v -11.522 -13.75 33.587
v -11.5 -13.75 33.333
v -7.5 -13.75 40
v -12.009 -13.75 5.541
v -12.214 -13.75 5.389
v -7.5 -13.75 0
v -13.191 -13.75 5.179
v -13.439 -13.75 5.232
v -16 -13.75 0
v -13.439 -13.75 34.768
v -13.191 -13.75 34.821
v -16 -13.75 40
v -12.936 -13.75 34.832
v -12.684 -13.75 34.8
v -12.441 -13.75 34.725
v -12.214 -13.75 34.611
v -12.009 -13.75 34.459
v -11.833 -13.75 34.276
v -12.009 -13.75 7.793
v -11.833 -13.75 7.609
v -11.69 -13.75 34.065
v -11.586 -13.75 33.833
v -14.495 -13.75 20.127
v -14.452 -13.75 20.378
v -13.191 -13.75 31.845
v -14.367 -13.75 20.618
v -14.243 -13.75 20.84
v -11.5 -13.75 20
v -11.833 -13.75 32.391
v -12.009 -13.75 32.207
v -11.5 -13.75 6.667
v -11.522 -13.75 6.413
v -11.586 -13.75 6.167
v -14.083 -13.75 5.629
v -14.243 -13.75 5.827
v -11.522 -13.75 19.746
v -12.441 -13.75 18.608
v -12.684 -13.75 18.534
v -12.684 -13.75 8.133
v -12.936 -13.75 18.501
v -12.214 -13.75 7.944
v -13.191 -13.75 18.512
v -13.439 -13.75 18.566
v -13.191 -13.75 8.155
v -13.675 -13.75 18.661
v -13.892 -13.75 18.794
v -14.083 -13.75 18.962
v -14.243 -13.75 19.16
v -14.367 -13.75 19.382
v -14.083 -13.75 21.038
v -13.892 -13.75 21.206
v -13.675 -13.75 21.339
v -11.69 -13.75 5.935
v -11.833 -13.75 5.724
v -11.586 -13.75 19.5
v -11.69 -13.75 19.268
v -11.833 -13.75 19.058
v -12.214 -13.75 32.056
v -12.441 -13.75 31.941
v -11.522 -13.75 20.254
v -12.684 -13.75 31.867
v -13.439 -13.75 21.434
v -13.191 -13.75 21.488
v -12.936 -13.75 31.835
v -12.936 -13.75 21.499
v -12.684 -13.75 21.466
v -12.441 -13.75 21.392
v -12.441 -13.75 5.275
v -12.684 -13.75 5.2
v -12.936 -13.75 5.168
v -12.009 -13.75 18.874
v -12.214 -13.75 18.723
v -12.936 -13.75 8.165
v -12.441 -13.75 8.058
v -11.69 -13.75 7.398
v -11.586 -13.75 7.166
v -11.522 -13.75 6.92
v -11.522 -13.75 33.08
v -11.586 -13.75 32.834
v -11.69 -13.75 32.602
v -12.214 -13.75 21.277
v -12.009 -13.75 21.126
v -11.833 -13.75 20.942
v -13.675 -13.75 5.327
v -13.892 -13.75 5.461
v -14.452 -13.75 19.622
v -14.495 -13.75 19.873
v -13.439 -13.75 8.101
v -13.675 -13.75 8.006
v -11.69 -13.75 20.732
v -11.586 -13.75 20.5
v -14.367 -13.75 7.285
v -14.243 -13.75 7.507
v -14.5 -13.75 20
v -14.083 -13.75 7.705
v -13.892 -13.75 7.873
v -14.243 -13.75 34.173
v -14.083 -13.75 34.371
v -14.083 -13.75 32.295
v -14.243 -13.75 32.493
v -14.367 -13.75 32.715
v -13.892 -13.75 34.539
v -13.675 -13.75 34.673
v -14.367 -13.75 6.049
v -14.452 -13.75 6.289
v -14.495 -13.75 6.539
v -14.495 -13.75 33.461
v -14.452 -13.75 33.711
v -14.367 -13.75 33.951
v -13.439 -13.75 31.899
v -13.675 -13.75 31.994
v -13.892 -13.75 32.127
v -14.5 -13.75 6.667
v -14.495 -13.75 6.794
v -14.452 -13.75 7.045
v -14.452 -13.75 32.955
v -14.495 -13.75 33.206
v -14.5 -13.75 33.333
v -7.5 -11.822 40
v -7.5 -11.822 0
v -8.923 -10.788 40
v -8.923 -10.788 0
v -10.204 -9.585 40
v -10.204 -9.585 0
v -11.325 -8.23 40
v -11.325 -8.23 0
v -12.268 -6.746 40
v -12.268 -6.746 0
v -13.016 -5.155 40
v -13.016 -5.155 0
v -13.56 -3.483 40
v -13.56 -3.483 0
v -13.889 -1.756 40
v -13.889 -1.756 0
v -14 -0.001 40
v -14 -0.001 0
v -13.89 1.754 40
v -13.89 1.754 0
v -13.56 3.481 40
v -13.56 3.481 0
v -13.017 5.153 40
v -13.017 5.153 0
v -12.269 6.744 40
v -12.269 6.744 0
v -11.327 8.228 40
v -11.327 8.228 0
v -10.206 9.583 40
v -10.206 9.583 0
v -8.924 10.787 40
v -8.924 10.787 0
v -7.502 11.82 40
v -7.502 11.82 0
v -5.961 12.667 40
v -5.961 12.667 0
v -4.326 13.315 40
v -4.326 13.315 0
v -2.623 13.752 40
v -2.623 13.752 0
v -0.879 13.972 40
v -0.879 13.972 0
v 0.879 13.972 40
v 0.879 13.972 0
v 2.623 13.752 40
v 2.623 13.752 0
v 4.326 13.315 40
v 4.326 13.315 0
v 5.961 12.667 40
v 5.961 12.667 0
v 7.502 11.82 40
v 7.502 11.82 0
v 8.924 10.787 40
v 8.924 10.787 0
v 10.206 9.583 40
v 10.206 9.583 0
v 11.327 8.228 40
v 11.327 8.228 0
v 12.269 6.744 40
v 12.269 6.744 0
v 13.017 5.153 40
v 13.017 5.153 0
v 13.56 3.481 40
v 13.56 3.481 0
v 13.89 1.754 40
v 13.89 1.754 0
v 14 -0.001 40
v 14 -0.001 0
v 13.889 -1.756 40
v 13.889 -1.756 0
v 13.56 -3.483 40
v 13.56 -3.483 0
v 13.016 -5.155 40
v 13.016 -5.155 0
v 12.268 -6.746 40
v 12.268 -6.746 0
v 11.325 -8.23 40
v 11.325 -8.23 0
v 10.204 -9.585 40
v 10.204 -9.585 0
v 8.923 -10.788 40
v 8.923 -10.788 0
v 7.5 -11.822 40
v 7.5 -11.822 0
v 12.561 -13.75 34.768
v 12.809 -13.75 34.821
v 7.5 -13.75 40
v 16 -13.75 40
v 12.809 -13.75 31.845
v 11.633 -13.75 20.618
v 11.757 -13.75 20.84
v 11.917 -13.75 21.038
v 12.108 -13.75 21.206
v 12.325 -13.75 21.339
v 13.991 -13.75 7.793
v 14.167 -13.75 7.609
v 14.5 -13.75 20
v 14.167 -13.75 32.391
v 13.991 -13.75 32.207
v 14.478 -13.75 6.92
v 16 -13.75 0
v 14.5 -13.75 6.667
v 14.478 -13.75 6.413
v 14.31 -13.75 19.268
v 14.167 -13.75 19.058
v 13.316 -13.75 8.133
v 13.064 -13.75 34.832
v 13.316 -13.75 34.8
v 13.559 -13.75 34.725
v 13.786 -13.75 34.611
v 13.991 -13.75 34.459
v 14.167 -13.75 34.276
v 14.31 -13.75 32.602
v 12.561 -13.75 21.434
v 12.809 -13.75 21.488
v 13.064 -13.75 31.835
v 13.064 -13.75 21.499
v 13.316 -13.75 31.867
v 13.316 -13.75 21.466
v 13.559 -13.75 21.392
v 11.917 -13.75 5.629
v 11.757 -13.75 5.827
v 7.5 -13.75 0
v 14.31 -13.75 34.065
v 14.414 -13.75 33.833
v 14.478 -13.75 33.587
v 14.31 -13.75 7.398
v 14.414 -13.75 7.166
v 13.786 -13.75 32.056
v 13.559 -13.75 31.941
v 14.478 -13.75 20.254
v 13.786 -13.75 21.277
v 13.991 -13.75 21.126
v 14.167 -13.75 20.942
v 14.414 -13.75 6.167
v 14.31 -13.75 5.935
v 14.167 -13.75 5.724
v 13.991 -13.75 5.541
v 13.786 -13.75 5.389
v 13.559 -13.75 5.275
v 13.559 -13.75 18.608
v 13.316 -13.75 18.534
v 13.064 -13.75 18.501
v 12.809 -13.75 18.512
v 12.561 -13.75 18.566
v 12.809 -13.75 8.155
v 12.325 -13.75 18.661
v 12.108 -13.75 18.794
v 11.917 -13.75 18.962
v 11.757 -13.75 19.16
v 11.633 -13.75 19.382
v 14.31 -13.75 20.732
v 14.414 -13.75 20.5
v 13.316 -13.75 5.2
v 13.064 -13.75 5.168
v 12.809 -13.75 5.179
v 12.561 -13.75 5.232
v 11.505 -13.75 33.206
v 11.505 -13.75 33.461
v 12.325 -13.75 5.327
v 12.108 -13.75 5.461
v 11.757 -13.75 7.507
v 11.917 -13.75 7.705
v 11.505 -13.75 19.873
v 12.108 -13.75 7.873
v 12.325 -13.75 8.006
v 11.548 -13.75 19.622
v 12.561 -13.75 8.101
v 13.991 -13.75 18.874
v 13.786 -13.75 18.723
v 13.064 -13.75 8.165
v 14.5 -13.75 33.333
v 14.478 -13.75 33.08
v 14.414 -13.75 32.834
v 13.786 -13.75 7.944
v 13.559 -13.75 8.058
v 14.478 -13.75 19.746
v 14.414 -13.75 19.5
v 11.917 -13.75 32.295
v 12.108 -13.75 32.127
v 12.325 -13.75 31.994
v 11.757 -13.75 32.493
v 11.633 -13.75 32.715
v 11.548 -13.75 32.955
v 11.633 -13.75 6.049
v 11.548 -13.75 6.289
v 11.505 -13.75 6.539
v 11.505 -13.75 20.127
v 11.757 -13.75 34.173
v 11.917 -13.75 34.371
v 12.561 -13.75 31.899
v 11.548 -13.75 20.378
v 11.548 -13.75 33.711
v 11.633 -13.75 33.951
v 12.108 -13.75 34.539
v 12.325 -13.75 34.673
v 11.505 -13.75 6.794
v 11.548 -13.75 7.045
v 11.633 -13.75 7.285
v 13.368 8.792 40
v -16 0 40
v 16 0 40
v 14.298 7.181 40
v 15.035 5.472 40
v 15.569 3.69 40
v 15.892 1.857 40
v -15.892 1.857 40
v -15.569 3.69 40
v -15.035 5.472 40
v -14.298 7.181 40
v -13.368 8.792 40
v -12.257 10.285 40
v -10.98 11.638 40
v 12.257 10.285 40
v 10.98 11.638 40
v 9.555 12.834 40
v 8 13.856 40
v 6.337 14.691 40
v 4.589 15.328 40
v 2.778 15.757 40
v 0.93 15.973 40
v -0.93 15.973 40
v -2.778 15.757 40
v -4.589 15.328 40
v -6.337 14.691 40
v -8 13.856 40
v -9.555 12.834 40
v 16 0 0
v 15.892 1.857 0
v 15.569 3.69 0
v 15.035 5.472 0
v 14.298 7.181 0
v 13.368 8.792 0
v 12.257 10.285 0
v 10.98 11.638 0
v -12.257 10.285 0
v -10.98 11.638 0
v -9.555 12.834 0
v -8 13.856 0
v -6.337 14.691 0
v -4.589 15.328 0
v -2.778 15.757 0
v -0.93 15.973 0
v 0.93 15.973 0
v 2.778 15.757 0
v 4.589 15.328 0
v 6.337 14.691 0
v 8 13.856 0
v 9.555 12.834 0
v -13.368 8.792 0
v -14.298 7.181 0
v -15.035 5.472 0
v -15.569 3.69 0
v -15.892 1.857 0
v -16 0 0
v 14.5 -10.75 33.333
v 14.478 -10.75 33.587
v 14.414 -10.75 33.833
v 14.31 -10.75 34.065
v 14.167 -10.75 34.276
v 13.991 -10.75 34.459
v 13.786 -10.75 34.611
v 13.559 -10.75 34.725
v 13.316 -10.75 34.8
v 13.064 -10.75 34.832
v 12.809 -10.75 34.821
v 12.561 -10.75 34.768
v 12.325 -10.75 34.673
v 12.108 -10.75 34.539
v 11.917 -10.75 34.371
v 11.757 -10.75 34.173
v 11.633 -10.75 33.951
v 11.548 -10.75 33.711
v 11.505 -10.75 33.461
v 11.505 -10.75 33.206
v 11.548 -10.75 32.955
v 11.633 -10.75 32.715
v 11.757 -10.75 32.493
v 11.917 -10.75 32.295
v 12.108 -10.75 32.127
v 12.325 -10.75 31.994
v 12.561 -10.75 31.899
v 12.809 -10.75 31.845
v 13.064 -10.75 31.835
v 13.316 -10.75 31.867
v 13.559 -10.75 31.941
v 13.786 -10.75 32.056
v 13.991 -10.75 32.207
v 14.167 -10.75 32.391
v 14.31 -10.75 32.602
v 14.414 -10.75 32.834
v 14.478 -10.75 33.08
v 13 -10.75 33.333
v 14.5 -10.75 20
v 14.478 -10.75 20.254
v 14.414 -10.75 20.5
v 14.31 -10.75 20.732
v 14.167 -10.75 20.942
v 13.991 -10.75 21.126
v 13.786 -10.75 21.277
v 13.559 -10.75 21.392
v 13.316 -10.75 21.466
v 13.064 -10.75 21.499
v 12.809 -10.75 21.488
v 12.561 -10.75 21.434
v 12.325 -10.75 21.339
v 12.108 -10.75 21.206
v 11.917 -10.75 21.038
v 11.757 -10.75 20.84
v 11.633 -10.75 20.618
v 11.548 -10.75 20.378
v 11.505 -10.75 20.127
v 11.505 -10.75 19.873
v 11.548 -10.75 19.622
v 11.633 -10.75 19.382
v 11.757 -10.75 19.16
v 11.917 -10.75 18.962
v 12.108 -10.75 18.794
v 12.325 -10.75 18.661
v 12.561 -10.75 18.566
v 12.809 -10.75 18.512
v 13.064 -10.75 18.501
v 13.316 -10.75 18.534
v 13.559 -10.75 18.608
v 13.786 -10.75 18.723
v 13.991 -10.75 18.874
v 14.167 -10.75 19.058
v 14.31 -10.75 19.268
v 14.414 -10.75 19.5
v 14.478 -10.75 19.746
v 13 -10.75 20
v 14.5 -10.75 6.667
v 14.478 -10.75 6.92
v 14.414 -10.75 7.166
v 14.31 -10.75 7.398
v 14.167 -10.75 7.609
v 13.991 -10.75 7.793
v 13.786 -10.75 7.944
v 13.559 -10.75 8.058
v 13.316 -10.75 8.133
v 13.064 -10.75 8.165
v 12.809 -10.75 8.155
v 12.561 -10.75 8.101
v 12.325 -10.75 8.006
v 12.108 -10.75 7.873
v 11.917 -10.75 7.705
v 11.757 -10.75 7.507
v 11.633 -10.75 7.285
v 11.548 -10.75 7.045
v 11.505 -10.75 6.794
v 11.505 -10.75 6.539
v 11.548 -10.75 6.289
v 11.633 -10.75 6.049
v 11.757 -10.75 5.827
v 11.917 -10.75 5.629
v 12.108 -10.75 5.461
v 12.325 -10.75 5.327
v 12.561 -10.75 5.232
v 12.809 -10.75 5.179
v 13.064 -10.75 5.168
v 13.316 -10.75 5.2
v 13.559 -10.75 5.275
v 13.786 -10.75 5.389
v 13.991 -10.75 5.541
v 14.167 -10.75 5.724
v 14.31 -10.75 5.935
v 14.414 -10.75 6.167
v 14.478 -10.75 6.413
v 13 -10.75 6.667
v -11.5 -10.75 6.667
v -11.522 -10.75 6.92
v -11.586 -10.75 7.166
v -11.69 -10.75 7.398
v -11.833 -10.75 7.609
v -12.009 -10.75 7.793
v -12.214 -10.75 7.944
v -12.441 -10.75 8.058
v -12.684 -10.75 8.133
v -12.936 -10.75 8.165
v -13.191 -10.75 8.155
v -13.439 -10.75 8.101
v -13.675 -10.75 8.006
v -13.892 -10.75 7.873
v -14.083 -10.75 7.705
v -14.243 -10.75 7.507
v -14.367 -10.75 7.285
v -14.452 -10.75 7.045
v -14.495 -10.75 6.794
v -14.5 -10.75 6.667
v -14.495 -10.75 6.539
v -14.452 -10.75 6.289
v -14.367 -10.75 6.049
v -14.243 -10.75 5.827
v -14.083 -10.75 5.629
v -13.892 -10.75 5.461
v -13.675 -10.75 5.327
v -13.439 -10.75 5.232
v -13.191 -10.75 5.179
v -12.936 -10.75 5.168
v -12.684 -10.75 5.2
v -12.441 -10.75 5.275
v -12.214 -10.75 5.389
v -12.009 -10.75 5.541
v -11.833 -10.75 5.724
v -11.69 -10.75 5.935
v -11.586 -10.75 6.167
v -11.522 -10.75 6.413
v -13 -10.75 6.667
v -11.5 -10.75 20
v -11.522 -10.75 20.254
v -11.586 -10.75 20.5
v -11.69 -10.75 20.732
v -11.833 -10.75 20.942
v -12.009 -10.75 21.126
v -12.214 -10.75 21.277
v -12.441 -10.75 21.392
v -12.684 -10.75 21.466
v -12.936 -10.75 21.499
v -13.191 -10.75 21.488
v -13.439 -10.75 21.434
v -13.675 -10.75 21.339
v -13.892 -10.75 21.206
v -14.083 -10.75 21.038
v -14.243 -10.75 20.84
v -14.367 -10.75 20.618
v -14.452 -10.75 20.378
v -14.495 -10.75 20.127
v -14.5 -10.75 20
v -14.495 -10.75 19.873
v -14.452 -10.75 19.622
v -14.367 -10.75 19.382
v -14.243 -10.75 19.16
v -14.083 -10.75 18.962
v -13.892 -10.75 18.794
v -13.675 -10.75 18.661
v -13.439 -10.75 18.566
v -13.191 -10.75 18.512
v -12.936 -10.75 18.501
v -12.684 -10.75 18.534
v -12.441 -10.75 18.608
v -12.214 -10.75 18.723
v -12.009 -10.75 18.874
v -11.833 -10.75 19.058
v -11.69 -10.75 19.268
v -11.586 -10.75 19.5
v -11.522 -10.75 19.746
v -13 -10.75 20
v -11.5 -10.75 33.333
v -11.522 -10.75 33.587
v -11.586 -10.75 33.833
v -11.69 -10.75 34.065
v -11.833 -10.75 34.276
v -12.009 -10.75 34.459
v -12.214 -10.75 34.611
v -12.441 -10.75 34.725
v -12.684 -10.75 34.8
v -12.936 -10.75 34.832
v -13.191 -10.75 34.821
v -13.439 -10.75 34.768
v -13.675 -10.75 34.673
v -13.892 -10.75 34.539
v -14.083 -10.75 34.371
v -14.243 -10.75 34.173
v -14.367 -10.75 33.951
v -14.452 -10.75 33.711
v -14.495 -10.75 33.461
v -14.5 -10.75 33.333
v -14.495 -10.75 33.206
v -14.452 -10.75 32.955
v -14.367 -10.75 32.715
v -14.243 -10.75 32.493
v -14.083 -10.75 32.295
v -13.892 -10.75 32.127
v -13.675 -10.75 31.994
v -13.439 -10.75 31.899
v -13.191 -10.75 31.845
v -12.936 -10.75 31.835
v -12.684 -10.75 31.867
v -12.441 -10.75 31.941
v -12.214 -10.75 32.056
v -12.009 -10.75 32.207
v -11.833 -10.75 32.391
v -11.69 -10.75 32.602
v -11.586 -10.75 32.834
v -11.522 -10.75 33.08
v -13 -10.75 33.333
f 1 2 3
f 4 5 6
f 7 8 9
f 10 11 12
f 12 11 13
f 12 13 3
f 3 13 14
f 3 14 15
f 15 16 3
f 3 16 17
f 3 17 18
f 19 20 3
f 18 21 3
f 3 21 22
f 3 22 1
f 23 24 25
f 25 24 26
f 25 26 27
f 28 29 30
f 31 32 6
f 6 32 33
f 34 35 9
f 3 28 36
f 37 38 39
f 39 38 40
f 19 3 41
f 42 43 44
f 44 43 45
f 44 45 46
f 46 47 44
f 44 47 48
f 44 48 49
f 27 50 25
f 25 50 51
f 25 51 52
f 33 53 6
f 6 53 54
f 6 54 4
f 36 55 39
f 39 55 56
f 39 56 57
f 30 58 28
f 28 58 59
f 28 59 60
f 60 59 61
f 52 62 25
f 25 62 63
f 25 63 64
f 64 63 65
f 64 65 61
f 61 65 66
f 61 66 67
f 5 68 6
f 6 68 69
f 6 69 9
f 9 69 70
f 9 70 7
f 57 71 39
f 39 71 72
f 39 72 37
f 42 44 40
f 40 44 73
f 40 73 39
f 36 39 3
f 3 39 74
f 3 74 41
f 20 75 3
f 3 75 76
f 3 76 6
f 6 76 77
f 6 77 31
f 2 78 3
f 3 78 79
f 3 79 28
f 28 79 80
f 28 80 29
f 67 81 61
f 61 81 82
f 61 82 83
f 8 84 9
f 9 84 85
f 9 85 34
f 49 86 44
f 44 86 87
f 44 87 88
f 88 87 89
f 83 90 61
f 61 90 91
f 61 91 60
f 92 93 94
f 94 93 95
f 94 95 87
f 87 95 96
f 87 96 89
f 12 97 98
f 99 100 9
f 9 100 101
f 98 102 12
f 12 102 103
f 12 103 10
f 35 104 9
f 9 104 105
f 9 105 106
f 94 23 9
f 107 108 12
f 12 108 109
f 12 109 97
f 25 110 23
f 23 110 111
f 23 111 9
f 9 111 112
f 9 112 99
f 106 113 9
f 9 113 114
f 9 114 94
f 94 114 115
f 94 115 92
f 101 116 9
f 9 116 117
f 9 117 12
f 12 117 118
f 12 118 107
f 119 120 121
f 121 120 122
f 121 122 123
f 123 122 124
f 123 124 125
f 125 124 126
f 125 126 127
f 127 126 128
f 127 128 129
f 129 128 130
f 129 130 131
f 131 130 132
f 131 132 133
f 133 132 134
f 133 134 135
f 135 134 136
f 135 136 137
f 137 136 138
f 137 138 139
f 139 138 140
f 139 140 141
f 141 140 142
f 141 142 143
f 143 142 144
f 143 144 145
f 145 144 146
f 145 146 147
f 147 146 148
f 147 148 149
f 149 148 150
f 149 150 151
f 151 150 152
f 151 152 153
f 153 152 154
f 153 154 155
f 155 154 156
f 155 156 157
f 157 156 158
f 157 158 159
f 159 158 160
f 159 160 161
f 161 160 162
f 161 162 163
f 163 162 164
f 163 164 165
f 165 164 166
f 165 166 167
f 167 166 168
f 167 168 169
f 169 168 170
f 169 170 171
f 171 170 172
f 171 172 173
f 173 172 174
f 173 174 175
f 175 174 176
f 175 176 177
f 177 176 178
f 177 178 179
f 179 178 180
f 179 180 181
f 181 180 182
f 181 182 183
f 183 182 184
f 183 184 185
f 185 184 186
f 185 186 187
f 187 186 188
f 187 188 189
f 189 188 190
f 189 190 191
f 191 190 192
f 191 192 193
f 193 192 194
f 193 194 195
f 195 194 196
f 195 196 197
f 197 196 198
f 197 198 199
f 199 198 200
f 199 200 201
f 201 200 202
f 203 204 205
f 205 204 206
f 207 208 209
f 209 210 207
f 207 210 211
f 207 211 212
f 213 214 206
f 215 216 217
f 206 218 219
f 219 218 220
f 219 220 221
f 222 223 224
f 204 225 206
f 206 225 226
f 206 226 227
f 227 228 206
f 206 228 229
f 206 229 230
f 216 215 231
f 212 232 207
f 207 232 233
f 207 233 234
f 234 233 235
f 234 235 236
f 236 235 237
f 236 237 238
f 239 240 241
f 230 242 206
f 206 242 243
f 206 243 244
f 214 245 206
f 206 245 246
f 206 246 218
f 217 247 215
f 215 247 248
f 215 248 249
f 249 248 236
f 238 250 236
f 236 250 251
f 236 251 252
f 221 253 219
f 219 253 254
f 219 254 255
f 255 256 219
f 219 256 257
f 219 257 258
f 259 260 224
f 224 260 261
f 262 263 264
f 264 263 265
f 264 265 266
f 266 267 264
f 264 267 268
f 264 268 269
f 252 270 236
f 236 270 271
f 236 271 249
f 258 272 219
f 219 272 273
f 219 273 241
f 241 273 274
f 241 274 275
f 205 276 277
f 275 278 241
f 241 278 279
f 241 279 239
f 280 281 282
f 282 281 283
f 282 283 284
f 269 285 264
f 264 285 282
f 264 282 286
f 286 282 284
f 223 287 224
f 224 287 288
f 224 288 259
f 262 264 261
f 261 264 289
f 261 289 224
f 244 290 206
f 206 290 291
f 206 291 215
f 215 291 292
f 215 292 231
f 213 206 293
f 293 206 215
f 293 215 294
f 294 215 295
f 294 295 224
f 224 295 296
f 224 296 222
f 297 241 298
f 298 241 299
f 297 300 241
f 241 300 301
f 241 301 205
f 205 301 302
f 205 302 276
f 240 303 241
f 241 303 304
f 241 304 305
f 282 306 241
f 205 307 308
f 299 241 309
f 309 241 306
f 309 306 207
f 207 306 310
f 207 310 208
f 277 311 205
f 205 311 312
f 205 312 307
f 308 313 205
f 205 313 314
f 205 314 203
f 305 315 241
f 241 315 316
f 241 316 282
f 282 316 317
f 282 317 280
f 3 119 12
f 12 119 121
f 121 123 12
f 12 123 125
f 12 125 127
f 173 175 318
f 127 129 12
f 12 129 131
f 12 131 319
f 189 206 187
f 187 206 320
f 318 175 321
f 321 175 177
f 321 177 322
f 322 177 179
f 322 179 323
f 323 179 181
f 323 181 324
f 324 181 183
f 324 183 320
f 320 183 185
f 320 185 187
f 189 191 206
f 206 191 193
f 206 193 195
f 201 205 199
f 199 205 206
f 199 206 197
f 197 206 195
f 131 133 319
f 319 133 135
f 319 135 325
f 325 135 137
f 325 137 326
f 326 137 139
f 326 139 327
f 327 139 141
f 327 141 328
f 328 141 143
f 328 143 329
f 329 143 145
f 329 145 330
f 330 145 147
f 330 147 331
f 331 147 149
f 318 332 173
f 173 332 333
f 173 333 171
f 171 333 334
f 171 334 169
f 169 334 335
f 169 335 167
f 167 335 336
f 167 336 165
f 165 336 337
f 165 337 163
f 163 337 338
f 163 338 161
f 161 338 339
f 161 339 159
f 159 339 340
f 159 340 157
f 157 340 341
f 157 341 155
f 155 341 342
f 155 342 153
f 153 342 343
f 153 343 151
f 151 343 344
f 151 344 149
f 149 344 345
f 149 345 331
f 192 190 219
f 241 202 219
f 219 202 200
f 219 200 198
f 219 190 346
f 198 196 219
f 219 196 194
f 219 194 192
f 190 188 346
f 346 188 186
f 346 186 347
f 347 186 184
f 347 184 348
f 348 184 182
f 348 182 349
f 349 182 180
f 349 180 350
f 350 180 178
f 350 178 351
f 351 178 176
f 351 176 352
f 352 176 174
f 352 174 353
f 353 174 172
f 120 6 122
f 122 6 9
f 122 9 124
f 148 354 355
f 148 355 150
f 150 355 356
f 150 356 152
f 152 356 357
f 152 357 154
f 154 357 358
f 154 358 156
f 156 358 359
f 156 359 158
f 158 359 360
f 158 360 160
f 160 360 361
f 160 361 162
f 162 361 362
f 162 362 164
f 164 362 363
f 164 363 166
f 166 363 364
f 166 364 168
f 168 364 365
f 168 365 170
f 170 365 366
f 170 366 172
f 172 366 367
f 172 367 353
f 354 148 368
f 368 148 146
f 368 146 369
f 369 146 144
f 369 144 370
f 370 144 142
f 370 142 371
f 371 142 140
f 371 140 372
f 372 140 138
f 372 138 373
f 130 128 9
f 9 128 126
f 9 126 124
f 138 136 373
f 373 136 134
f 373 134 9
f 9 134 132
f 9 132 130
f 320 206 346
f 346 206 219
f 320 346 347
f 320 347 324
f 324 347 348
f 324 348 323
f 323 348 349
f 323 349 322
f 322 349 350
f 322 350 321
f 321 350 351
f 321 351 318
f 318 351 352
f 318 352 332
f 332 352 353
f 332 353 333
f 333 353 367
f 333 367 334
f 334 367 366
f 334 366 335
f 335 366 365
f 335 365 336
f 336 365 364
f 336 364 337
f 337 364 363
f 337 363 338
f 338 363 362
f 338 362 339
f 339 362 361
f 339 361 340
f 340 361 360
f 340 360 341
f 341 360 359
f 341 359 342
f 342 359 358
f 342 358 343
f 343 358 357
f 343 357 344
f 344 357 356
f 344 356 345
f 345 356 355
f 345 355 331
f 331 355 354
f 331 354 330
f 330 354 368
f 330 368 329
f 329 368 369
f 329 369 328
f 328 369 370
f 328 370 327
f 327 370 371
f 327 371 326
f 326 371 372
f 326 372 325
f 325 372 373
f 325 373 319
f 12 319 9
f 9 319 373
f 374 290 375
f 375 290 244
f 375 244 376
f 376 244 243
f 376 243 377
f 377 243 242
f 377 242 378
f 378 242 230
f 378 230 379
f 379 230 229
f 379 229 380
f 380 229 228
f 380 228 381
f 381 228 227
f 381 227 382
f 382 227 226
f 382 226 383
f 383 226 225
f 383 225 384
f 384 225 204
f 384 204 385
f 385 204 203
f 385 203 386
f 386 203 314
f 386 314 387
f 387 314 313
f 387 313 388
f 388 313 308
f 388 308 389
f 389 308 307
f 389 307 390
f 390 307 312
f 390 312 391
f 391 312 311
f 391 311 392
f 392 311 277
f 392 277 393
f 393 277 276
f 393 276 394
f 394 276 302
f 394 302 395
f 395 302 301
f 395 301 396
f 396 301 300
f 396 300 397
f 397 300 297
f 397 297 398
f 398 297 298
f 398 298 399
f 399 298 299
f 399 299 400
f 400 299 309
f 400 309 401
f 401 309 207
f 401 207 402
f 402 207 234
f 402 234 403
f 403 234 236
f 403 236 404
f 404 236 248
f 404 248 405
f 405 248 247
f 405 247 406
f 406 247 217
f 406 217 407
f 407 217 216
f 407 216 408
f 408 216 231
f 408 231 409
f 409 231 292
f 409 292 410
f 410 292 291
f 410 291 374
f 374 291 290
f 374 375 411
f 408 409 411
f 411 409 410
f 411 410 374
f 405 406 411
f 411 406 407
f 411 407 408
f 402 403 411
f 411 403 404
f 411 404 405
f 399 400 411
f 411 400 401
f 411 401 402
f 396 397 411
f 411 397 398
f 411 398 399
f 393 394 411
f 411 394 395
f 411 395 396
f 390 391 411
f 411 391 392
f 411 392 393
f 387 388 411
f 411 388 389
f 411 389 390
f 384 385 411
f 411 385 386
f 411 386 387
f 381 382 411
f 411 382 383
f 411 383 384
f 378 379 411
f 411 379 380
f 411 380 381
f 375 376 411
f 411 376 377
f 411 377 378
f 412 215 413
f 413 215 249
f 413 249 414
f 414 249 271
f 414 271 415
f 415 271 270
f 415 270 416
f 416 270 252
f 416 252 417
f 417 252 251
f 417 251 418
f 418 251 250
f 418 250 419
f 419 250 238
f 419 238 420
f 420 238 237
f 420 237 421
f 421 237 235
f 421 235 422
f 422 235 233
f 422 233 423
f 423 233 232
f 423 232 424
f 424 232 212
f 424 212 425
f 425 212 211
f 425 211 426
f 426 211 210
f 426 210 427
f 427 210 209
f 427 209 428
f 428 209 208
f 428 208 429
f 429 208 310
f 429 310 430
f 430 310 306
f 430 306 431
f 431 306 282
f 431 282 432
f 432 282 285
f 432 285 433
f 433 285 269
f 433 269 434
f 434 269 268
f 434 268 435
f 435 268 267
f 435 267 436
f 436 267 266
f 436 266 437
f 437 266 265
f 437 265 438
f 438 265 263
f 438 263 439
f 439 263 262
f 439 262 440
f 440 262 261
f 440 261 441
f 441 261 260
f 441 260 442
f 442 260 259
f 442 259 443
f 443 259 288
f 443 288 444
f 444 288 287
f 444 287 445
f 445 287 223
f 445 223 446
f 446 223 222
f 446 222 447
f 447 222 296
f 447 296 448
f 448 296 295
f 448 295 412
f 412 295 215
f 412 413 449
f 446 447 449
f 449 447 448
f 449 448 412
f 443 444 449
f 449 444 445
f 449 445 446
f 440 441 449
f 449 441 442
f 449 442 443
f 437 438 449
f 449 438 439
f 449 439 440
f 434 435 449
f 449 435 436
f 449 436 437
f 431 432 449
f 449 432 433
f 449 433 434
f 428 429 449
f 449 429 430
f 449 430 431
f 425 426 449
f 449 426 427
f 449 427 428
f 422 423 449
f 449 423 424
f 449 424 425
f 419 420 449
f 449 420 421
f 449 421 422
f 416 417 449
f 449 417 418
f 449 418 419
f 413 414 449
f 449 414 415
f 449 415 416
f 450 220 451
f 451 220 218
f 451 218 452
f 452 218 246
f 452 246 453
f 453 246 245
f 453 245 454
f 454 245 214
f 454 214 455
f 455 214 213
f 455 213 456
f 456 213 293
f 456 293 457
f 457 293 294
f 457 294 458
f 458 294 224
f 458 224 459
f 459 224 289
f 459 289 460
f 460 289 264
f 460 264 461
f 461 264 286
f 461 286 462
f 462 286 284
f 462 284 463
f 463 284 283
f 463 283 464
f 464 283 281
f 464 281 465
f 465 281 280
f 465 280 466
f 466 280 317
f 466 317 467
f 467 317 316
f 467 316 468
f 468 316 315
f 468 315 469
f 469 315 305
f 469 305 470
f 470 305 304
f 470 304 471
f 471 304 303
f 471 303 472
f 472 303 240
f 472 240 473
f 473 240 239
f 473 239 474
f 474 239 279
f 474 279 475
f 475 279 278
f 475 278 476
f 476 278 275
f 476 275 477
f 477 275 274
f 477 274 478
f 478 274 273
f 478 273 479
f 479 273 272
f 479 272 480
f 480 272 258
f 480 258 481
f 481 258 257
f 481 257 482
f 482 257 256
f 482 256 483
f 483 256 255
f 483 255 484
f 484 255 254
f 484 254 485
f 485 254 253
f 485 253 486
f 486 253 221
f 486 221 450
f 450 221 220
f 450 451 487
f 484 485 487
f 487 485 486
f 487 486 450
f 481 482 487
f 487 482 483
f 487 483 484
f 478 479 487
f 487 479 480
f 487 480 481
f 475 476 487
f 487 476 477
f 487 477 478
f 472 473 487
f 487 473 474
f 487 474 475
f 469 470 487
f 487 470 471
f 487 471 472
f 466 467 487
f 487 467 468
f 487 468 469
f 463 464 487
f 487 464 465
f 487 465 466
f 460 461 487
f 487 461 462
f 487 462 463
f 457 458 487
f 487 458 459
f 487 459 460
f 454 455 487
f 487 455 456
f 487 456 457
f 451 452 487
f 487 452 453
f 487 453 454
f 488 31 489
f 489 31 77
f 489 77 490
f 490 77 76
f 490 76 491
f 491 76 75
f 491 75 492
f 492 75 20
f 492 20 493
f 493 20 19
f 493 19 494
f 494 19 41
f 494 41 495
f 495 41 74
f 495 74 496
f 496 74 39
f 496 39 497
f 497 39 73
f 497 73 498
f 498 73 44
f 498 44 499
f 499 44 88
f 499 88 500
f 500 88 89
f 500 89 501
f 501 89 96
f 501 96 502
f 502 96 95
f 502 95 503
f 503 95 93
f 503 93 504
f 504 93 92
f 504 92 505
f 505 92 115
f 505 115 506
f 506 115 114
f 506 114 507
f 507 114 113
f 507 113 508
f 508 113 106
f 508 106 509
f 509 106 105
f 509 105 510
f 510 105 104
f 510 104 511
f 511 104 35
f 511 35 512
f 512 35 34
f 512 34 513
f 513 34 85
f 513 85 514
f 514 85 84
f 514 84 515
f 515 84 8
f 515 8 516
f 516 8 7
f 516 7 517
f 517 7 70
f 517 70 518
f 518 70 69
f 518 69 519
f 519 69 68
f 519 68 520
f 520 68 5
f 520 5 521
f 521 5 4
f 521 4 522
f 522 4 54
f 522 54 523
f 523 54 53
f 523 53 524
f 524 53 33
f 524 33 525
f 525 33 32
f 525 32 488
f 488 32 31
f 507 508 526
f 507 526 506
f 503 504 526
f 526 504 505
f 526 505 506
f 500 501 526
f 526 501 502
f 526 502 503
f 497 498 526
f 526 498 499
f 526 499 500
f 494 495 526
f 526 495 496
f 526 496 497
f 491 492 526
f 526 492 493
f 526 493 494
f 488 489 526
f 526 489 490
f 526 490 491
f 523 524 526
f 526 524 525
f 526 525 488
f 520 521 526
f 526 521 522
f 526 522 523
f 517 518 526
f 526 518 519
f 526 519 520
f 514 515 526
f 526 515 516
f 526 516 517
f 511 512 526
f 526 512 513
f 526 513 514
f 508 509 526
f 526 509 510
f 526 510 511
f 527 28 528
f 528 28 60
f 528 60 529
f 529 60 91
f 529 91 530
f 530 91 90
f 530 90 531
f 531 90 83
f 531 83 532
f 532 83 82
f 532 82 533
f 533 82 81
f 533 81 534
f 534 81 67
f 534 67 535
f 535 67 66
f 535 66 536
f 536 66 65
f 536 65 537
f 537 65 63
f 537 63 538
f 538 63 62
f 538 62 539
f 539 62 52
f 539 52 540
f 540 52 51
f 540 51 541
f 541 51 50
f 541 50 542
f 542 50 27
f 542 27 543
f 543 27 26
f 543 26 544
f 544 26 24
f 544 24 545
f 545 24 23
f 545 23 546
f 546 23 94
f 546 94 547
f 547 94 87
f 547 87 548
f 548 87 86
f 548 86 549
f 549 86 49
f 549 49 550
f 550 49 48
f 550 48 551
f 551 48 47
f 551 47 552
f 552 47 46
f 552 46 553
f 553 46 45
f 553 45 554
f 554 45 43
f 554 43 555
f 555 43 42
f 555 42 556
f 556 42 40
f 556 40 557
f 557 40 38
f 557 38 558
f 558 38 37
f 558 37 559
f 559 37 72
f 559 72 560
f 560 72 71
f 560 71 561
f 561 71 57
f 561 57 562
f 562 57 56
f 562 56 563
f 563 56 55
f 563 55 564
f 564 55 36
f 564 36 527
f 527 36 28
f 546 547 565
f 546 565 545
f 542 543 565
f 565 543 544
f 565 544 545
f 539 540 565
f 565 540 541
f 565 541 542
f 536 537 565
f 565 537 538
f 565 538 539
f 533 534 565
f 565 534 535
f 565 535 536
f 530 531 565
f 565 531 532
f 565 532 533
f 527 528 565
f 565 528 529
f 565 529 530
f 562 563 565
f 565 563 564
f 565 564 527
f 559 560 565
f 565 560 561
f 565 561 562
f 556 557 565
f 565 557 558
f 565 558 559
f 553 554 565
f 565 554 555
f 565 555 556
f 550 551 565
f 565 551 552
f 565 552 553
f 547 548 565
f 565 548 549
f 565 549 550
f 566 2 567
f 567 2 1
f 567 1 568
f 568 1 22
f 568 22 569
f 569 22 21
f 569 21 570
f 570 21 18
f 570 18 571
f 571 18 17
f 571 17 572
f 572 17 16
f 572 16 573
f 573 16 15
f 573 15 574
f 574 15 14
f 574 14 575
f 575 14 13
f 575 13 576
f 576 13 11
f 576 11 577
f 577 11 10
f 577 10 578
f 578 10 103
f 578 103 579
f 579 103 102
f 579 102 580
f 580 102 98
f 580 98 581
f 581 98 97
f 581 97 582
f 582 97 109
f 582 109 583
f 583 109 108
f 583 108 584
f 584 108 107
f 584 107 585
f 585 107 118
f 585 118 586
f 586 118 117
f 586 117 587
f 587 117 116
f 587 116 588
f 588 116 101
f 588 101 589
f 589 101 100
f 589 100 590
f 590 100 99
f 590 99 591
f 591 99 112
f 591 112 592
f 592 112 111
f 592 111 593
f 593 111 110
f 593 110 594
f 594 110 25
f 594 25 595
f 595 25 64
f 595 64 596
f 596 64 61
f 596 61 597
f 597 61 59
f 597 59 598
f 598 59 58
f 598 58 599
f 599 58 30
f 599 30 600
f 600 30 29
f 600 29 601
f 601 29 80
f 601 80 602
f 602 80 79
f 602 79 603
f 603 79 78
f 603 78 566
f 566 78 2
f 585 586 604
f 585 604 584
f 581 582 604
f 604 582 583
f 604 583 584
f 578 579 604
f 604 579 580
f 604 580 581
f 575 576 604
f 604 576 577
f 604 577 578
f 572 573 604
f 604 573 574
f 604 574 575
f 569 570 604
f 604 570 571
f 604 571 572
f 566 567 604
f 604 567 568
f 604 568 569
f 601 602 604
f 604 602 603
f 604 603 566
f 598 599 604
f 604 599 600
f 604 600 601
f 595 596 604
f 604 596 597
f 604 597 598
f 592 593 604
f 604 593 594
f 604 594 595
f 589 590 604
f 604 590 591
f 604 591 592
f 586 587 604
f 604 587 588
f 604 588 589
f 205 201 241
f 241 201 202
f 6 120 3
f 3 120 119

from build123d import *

# Parameters (mm, degrees)
BOSS_EXTRUDE1_DEPTH     = 40
SKETCH2_R               = 1.5
CUT_EXTRUDE1_DEPTH      = 3
SKETCH3_W               = 15
SKETCH3_H               = 10
CUT_EXTRUDE_THIN1_DEPTH = 46.956501172


with BuildPart() as part:
    # Sketch1 → Boss-Extrude1 (new body)
    with BuildSketch(Plane.XY):
        with BuildLine():
            Line((-2.633913438, -13.75), (-16, -13.75))
            Line((-16, -13.75), (-16, 0))
            ThreePointArc((-16, 0), (0, 16), (16, 0))
            Line((16, 0), (16, -13.75))
            Line((16, -13.75), (2.633913438, -13.75))
            ThreePointArc((2.633913438, -13.75), (0, 14), (-2.633913438, -13.75))
        make_face()
    extrude(amount=BOSS_EXTRUDE1_DEPTH)

    # Sketch2 → Cut-Extrude1 (cut)
    with BuildSketch(Plane.XZ.offset(13.75)):
        with Locations((13, 33.333333333)):
            Circle(SKETCH2_R)
        with Locations((13, 20)):
            Circle(SKETCH2_R)
        with Locations((13, 6.666666667)):
            Circle(SKETCH2_R)
        with Locations(Location((-13, 6.666666667, 0), (0, 0, 180))):
            Circle(SKETCH2_R)
        with Locations(Location((-13, 20, 0), (0, 0, 180))):
            Circle(SKETCH2_R)
        with Locations(Location((-13, 33.333333333, 0), (0, 0, 180))):
            Circle(SKETCH2_R)
    extrude(amount=-CUT_EXTRUDE1_DEPTH, mode=Mode.SUBTRACT)

    # Sketch3 → Cut-Extrude-Thin1 (cut, through all)
    with BuildSketch(Plane.XY.offset(40)):
        with Locations((0, -8.75)):
            Rectangle(SKETCH3_W, SKETCH3_H)
    extrude(amount=-CUT_EXTRUDE_THIN1_DEPTH, mode=Mode.SUBTRACT)


solid = part.part
